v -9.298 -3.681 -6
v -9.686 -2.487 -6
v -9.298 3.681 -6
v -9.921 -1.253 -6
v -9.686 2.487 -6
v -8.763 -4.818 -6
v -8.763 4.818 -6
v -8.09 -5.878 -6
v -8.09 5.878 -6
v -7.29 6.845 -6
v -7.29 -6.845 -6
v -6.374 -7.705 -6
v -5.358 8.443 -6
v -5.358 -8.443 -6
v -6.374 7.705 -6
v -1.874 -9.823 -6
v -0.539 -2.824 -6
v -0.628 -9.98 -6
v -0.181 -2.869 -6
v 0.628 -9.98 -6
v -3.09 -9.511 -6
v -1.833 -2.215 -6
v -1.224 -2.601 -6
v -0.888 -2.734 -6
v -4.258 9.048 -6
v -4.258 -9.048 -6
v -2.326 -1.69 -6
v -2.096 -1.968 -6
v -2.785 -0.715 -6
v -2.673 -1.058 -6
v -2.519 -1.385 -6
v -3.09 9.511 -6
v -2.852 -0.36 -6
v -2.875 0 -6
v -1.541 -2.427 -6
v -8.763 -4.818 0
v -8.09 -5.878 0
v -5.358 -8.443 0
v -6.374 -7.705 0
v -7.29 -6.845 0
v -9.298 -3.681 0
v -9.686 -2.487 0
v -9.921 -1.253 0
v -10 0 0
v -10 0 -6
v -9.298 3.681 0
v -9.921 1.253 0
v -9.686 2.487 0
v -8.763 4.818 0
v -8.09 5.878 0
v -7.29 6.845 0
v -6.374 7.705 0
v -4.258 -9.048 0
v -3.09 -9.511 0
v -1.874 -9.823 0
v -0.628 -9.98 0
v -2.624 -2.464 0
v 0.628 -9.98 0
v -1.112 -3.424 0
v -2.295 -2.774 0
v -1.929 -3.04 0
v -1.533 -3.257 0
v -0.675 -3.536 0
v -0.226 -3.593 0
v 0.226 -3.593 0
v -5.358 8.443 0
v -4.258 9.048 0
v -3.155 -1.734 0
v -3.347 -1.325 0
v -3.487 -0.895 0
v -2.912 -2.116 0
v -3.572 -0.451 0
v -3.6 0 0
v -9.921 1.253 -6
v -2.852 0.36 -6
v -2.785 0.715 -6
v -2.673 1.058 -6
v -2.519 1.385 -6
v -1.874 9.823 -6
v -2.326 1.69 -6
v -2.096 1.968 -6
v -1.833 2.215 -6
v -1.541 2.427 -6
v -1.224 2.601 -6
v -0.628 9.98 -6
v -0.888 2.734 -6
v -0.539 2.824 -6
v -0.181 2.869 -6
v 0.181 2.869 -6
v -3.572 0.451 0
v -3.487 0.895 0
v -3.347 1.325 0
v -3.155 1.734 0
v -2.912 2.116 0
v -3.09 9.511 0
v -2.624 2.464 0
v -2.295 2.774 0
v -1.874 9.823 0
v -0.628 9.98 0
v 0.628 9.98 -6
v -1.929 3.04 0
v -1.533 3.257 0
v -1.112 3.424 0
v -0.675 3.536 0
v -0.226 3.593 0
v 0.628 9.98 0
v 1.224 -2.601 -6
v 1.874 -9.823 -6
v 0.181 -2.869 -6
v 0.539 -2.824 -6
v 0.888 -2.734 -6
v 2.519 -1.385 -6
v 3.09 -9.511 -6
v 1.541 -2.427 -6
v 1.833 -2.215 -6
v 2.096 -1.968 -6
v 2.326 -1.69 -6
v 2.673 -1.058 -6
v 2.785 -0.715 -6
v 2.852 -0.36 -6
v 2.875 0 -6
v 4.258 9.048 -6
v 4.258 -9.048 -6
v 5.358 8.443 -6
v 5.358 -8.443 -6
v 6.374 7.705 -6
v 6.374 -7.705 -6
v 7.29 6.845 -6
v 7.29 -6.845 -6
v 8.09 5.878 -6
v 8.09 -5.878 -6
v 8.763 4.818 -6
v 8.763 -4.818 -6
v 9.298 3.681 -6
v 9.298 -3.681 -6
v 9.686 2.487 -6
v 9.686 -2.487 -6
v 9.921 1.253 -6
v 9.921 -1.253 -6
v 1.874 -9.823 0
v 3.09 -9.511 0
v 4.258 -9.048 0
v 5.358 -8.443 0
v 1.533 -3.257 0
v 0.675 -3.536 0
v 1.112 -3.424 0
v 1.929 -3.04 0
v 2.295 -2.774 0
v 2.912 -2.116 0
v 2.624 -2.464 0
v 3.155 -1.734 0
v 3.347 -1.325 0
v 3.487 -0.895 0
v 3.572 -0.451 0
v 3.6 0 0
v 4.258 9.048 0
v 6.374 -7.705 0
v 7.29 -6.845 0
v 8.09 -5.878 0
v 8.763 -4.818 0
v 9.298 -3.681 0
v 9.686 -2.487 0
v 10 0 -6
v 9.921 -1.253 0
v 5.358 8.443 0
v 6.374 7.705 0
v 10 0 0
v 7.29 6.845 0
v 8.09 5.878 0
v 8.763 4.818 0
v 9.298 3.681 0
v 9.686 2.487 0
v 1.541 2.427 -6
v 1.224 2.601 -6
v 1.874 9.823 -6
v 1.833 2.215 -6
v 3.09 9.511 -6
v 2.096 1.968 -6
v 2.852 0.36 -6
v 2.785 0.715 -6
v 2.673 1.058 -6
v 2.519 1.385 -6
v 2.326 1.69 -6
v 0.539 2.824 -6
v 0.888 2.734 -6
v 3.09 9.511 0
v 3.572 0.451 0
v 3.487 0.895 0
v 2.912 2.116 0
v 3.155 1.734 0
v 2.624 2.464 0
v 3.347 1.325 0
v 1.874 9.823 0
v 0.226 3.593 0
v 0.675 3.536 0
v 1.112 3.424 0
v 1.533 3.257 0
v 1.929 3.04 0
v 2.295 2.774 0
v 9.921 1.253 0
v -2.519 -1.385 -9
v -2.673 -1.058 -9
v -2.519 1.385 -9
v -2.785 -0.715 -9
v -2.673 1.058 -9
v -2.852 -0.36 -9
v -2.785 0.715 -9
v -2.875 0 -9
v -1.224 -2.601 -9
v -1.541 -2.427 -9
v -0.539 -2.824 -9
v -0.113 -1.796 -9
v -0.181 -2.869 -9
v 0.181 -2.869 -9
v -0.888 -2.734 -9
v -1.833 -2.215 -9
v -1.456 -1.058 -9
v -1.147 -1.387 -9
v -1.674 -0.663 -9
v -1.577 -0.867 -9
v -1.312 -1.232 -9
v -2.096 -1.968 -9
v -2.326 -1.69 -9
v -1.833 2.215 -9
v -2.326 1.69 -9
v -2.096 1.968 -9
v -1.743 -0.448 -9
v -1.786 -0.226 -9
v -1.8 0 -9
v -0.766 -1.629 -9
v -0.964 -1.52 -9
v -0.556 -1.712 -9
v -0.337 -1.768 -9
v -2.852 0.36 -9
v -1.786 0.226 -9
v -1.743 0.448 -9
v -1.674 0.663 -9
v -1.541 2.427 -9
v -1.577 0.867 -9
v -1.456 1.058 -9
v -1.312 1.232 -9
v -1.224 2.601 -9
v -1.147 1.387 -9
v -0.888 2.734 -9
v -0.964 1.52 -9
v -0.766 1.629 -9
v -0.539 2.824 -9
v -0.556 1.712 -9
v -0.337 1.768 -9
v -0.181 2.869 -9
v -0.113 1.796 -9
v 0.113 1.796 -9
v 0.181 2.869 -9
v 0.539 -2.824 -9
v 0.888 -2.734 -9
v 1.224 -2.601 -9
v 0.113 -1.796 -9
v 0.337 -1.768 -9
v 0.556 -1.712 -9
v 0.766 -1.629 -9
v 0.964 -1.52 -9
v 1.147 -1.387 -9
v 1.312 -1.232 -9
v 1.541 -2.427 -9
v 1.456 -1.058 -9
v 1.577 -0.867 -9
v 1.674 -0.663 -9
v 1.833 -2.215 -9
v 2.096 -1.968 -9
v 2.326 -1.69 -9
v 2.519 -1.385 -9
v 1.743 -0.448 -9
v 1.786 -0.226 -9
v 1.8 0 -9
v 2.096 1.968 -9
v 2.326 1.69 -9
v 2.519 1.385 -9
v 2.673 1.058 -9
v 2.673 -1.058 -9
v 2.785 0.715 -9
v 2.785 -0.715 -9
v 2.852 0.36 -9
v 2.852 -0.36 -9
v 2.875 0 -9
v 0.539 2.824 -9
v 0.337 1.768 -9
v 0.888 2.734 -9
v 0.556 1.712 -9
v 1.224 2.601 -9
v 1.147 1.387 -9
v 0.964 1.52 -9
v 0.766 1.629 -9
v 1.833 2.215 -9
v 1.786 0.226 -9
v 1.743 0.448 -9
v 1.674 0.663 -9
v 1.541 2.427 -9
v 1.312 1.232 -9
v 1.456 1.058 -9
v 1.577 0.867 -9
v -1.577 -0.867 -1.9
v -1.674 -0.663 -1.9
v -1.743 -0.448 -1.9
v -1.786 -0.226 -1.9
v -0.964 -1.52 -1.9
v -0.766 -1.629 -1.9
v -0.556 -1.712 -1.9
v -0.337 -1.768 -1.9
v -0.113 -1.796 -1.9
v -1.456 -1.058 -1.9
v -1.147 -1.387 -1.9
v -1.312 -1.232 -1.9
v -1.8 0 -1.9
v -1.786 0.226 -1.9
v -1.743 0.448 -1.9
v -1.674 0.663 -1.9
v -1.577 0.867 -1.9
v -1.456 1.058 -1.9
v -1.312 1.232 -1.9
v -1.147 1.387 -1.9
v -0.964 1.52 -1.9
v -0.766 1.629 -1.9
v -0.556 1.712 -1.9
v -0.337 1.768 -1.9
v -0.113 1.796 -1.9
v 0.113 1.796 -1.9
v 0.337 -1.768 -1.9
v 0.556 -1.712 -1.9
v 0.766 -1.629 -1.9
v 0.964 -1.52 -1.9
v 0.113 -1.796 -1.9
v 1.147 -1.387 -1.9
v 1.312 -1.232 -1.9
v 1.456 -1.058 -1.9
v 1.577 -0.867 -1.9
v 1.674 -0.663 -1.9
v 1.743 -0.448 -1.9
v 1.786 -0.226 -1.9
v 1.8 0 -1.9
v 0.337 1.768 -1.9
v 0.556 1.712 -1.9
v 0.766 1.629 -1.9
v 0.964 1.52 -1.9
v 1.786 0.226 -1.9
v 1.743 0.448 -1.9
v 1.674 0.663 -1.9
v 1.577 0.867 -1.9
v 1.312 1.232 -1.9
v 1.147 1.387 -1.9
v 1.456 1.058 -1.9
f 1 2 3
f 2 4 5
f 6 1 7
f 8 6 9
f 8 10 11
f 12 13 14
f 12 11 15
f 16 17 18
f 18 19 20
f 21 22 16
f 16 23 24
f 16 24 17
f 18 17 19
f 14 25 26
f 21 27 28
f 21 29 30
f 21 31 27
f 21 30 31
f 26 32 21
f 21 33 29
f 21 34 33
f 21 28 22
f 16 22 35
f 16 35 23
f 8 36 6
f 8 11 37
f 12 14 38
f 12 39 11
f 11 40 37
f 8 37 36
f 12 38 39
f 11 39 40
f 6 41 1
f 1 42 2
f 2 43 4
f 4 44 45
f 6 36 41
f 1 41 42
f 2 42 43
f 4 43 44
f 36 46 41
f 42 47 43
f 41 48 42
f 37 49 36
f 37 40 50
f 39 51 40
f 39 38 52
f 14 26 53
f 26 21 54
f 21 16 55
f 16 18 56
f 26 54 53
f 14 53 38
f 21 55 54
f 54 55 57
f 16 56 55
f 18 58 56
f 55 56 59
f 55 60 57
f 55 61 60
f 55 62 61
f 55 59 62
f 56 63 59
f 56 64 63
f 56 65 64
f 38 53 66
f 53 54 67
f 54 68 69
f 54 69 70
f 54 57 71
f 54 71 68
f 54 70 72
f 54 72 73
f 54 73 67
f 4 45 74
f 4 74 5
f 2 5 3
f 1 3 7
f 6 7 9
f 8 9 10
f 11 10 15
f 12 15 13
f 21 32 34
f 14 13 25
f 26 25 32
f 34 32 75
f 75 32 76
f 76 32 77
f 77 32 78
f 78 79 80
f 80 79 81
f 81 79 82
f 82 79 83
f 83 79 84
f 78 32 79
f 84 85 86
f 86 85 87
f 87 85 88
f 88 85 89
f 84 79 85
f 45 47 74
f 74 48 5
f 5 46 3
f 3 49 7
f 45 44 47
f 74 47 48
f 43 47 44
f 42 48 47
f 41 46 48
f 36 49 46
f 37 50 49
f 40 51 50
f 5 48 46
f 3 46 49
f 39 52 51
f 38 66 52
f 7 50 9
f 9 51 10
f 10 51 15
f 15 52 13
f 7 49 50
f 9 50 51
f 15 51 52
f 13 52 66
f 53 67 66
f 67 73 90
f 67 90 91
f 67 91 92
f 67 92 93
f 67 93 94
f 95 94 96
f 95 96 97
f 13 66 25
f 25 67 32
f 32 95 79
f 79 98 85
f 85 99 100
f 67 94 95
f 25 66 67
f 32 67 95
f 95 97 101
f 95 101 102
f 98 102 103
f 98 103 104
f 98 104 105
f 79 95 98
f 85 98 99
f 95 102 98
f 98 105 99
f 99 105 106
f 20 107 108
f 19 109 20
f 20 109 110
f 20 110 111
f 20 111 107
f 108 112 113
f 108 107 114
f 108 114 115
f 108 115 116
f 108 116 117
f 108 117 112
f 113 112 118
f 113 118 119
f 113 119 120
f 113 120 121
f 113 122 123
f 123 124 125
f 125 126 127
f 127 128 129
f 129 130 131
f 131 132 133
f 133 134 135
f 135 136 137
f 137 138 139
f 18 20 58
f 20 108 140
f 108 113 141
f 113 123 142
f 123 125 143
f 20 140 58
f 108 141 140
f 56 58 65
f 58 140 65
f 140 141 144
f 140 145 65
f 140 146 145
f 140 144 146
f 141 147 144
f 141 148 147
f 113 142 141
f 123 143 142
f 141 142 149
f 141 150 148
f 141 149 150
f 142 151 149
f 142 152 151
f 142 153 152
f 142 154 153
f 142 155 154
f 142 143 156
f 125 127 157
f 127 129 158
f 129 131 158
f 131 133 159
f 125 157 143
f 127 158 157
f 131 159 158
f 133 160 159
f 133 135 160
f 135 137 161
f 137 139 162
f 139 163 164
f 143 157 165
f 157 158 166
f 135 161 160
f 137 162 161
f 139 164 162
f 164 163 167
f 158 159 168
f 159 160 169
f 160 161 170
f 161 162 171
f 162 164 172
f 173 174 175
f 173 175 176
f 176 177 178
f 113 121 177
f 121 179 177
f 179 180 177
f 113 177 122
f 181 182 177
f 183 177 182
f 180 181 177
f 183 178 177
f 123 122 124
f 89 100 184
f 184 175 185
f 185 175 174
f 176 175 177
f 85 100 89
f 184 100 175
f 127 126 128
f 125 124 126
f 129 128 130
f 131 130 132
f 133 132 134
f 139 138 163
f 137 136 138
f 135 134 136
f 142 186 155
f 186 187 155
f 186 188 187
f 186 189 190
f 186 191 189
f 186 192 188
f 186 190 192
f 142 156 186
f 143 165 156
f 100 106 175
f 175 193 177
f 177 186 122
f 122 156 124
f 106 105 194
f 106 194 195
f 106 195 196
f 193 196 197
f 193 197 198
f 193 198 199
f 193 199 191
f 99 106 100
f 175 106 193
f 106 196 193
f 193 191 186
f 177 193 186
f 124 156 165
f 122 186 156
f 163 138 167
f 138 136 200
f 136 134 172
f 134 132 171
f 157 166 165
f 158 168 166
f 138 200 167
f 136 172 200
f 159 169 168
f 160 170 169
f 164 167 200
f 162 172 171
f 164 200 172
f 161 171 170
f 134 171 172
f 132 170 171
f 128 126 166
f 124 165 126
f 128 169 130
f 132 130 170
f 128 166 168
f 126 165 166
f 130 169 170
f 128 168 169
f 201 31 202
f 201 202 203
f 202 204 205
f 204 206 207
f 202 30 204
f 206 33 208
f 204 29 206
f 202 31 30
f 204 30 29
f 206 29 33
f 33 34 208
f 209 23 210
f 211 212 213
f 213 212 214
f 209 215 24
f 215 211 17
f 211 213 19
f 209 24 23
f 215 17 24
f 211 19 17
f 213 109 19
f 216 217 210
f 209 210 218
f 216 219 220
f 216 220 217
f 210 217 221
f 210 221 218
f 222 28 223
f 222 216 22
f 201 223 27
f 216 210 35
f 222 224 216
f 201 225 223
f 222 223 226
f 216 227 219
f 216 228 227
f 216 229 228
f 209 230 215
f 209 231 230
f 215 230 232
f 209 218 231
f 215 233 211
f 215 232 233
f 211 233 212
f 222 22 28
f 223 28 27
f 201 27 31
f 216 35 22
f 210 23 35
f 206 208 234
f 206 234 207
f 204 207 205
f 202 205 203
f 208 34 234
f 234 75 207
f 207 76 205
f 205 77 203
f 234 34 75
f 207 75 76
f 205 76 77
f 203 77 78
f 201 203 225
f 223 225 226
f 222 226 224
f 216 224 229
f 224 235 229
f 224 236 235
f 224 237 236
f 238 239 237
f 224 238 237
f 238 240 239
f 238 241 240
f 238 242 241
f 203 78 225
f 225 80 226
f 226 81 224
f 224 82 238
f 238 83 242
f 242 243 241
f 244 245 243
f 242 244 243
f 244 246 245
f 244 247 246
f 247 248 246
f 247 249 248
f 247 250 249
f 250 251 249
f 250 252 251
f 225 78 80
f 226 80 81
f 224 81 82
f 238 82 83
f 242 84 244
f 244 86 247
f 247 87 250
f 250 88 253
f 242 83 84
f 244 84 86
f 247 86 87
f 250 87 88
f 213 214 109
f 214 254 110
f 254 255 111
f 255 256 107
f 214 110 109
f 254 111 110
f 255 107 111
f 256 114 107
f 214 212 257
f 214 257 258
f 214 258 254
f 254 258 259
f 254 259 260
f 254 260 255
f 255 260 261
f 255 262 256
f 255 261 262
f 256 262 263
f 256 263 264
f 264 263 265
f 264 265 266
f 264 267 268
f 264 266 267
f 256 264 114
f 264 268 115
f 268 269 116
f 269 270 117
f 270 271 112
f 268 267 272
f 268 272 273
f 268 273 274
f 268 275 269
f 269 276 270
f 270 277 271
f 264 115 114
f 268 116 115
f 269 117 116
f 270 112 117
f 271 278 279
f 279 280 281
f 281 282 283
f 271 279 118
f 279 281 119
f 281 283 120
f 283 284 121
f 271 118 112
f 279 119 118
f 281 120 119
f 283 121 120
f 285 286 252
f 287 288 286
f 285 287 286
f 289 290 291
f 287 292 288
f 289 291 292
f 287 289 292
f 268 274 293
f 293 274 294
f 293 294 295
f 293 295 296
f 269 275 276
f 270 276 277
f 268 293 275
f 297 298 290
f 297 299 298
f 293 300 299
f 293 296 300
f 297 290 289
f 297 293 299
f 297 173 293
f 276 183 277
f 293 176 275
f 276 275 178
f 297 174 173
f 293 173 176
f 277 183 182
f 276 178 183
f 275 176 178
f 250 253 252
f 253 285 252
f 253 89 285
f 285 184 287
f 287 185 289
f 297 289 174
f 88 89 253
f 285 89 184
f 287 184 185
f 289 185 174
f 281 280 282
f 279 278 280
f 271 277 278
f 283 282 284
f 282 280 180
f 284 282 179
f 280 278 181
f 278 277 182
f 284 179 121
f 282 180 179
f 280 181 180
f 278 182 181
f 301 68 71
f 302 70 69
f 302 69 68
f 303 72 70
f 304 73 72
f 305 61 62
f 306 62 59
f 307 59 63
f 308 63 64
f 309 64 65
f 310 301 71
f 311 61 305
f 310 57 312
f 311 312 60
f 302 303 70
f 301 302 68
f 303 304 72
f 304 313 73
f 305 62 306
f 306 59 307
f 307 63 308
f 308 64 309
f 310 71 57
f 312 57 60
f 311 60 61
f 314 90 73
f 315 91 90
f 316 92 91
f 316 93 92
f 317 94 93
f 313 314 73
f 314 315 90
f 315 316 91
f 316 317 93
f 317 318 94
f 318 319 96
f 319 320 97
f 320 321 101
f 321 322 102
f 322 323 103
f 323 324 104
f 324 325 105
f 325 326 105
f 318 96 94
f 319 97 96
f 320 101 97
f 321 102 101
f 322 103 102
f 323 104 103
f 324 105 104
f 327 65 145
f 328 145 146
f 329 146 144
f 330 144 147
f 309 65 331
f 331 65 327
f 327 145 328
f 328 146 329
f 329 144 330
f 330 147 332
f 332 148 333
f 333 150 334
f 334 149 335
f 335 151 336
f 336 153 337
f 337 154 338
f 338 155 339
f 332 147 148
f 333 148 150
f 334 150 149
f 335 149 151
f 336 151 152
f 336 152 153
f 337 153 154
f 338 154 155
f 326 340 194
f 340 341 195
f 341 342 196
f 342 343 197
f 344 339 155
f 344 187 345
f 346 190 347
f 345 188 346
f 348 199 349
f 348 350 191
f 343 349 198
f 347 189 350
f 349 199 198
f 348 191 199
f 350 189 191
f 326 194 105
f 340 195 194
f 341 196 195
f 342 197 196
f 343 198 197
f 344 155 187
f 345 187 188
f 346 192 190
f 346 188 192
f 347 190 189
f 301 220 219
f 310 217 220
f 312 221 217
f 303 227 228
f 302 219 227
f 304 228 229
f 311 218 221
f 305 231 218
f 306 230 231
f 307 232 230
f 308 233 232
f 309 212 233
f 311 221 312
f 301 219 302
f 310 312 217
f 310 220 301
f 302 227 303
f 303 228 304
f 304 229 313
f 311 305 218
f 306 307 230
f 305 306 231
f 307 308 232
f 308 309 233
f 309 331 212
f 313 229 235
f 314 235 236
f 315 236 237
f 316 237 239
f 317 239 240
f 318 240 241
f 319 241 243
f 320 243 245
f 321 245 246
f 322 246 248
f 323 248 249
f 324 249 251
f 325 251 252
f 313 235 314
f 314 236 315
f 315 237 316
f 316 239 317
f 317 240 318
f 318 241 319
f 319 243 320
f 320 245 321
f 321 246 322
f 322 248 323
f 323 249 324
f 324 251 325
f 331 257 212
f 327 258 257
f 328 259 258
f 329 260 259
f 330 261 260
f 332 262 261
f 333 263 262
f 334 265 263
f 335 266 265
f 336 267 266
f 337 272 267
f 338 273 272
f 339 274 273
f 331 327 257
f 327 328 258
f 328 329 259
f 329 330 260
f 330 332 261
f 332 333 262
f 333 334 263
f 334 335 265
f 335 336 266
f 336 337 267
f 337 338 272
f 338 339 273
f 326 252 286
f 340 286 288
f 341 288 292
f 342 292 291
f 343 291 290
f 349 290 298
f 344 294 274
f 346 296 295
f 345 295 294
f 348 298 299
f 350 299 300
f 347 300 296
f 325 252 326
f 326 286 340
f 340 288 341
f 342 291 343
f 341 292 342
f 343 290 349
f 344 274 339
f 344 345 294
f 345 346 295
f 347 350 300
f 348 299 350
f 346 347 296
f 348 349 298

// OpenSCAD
$fn = 50;

difference() {
	union() {
		translate(v = [0, 0, -6.0]) {
			cylinder(h = 6, r = 10.0);
		}
		#translate(v = [0, 0, -9.0]) {
			cylinder(h = 9, r = 2.875);
		}
	}
	union() {
		translate(v = [0, 0, 0]) {
			rotate(a = [0, 0, 0]) {
				difference() {
					union() {
						translate(v = [0, 0, -9.0]) {
							cylinder(h = 9, r = 1.5);
						}
						translate(v = [0, 0, -1.9]) {
							cylinder(h = 1.9, r1 = 1.8, r2 = 3.6);
						}
						translate(v = [0, 0, -9.0]) {
							cylinder(h = 9, r = 1.8);
						}
						translate(v = [0, 0, -9.0]) {
							cylinder(h = 9, r = 1.5);
						}
					}
					union();
				}
			}
		}
	}
}
